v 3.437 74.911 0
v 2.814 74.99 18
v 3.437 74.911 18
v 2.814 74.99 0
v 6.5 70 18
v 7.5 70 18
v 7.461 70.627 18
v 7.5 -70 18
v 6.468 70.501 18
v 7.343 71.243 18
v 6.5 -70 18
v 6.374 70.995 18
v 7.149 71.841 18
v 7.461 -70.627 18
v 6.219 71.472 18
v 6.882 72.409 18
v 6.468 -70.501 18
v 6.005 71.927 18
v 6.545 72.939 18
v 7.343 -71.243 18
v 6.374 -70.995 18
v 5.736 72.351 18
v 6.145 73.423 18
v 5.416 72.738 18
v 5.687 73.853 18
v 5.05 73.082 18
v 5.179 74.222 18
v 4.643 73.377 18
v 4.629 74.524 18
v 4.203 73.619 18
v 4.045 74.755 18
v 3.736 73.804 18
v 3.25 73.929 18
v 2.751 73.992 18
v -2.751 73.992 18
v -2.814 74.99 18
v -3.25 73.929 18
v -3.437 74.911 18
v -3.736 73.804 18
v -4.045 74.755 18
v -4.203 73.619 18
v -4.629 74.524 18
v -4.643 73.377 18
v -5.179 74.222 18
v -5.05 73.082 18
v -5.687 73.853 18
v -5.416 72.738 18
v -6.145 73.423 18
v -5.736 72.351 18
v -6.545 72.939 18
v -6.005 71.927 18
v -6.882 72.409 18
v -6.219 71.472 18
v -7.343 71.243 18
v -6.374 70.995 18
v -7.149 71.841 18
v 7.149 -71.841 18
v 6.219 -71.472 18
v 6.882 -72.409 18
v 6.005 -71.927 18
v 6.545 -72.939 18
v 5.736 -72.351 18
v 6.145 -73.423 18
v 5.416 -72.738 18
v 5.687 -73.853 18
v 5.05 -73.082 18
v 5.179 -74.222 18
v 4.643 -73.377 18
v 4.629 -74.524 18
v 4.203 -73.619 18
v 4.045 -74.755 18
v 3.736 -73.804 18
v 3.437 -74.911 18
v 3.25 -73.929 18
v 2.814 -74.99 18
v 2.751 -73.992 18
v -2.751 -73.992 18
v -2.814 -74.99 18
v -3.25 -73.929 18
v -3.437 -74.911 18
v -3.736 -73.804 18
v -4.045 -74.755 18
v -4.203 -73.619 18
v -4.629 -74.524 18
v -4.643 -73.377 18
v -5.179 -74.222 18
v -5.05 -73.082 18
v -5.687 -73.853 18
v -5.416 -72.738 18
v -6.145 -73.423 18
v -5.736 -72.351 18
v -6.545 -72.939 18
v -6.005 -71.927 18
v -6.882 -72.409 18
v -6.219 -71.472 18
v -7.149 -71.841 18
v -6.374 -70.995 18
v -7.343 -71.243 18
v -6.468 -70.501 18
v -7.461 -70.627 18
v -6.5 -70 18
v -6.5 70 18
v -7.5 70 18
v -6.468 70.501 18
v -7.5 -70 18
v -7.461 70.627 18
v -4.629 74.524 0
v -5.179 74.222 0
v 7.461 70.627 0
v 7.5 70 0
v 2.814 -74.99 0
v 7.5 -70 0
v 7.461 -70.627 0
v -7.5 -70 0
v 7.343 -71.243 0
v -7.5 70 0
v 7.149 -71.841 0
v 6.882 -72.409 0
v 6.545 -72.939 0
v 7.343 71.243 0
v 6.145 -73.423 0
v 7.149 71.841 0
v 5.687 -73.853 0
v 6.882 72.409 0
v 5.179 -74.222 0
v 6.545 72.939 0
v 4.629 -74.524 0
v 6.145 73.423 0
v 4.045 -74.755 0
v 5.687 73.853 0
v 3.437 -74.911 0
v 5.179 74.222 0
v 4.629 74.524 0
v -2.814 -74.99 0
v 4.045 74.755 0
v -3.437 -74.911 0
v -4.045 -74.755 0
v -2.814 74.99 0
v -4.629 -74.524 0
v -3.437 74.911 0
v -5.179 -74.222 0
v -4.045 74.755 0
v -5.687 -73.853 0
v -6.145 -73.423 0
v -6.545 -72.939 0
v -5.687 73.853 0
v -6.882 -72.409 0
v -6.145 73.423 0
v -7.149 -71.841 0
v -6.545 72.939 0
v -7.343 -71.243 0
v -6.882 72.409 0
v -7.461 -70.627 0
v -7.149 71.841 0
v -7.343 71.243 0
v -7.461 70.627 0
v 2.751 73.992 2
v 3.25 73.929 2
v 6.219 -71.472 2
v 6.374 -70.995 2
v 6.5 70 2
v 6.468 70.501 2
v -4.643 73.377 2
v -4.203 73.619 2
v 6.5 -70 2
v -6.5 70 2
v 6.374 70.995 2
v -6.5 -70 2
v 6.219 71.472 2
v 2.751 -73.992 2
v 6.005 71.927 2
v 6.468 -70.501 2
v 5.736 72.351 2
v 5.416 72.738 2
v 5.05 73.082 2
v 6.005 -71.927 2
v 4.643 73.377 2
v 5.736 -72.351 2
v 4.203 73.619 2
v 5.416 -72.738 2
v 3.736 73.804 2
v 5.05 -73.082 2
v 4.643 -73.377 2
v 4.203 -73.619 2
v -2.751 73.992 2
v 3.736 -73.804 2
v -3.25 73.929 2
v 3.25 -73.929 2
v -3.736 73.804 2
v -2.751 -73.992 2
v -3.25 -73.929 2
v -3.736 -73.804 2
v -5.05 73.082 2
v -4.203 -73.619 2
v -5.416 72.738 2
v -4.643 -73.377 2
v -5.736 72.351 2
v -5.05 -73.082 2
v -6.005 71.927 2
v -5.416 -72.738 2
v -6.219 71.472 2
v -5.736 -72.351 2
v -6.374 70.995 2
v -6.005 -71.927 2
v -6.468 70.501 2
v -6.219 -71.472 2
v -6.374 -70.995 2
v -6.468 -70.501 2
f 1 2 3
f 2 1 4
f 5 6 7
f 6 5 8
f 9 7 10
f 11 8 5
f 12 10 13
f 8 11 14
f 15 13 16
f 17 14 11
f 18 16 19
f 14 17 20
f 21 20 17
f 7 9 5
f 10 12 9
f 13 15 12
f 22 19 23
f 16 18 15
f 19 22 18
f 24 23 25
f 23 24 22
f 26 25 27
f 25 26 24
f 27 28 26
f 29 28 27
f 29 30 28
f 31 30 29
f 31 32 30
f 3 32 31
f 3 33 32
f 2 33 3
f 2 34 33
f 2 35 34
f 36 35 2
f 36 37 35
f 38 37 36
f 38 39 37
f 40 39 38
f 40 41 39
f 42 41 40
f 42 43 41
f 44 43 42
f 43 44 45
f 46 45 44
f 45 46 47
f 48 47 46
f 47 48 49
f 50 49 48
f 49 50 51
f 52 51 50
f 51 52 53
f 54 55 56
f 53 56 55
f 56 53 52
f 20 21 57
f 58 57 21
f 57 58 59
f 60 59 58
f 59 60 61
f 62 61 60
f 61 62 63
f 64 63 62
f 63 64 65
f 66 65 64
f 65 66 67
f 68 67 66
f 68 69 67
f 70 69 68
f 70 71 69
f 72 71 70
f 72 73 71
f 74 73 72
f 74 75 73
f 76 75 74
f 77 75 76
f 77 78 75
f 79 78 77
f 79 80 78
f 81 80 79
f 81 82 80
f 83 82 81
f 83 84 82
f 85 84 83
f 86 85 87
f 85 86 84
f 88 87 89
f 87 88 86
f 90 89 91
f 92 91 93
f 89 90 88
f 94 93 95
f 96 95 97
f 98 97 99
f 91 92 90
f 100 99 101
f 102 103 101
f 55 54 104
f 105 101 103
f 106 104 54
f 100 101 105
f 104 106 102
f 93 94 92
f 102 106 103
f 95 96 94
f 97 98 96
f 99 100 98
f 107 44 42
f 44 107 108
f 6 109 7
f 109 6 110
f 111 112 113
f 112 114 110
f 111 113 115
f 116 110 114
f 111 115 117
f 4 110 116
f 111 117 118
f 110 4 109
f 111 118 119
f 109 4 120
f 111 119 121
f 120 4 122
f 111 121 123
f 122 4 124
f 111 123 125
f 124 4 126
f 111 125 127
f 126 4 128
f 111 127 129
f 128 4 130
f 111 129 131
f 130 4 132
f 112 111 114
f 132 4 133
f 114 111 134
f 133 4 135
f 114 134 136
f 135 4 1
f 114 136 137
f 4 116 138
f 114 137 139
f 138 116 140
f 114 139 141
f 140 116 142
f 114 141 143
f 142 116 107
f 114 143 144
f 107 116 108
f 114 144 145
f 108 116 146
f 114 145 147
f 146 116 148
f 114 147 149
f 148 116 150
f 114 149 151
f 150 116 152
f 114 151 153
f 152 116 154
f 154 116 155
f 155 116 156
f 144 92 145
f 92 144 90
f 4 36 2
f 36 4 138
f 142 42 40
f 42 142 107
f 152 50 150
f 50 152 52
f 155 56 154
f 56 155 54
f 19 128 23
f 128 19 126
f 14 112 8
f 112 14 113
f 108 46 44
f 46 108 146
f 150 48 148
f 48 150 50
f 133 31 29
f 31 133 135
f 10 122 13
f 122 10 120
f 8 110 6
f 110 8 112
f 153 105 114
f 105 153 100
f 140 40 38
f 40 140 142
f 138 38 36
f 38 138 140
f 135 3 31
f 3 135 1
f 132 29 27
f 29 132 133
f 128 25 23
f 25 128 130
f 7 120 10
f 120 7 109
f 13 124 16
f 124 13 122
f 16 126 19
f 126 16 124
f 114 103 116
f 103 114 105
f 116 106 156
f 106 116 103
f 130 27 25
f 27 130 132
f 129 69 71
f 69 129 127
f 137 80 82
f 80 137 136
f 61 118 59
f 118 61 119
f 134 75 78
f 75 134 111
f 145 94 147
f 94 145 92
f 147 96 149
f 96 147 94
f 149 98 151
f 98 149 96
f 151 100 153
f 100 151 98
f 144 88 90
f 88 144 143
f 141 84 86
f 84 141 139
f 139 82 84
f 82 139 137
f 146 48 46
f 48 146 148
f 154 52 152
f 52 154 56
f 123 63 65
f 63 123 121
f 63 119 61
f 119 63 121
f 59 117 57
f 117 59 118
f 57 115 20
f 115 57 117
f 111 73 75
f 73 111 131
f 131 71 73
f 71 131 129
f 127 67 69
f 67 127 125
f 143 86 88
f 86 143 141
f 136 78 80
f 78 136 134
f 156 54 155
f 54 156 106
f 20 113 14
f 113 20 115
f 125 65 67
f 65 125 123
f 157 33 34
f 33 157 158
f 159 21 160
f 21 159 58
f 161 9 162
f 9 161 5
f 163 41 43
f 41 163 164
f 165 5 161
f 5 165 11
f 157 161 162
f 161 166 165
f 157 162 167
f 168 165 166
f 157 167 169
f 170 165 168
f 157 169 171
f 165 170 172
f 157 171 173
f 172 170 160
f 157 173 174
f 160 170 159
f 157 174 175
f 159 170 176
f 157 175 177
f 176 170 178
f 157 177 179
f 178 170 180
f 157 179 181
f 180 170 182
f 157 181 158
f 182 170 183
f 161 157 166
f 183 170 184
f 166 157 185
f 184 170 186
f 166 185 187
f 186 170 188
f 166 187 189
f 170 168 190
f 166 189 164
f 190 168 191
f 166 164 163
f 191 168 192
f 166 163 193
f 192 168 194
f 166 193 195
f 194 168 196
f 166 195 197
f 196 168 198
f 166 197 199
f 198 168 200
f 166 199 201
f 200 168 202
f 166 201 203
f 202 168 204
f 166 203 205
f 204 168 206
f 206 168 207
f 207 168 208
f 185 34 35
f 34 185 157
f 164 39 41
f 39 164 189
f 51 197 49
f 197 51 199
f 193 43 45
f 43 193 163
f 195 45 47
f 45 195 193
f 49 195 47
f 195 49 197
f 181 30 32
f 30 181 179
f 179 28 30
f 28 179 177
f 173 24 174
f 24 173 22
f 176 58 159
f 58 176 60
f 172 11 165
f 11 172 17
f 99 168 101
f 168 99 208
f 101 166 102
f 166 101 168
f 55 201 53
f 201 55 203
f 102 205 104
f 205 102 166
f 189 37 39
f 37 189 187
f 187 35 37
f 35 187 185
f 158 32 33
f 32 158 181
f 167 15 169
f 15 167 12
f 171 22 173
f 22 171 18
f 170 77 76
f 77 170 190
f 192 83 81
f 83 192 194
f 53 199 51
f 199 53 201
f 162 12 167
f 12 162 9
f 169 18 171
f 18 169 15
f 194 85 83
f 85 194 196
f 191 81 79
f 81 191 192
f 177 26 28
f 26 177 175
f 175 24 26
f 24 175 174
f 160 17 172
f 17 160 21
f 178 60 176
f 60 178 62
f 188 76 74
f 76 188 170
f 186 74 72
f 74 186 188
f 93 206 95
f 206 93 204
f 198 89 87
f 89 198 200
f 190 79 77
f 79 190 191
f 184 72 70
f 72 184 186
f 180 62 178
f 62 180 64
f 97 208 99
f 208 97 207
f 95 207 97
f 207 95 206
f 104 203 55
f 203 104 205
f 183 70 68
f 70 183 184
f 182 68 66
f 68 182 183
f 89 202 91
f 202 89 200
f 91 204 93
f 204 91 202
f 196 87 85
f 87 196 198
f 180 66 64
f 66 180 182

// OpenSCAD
$fn = 50;


difference() {
	union() {
		hull() {
			translate(v = [-2.5000000000, 70.0000000000, 0]) {
				cylinder(h = 18, r = 5);
			}
			translate(v = [2.5000000000, 70.0000000000, 0]) {
				cylinder(h = 18, r = 5);
			}
			translate(v = [-2.5000000000, -70.0000000000, 0]) {
				cylinder(h = 18, r = 5);
			}
			translate(v = [2.5000000000, -70.0000000000, 0]) {
				cylinder(h = 18, r = 5);
			}
		}
	}
	union() {
		translate(v = [0, 0, 2]) {
			hull() {
				translate(v = [-2.5000000000, 70.0000000000, 0]) {
					cylinder(h = 16, r = 4);
				}
				translate(v = [2.5000000000, 70.0000000000, 0]) {
					cylinder(h = 16, r = 4);
				}
				translate(v = [-2.5000000000, -70.0000000000, 0]) {
					cylinder(h = 16, r = 4);
				}
				translate(v = [2.5000000000, -70.0000000000, 0]) {
					cylinder(h = 16, r = 4);
				}
			}
		}
	}
}
